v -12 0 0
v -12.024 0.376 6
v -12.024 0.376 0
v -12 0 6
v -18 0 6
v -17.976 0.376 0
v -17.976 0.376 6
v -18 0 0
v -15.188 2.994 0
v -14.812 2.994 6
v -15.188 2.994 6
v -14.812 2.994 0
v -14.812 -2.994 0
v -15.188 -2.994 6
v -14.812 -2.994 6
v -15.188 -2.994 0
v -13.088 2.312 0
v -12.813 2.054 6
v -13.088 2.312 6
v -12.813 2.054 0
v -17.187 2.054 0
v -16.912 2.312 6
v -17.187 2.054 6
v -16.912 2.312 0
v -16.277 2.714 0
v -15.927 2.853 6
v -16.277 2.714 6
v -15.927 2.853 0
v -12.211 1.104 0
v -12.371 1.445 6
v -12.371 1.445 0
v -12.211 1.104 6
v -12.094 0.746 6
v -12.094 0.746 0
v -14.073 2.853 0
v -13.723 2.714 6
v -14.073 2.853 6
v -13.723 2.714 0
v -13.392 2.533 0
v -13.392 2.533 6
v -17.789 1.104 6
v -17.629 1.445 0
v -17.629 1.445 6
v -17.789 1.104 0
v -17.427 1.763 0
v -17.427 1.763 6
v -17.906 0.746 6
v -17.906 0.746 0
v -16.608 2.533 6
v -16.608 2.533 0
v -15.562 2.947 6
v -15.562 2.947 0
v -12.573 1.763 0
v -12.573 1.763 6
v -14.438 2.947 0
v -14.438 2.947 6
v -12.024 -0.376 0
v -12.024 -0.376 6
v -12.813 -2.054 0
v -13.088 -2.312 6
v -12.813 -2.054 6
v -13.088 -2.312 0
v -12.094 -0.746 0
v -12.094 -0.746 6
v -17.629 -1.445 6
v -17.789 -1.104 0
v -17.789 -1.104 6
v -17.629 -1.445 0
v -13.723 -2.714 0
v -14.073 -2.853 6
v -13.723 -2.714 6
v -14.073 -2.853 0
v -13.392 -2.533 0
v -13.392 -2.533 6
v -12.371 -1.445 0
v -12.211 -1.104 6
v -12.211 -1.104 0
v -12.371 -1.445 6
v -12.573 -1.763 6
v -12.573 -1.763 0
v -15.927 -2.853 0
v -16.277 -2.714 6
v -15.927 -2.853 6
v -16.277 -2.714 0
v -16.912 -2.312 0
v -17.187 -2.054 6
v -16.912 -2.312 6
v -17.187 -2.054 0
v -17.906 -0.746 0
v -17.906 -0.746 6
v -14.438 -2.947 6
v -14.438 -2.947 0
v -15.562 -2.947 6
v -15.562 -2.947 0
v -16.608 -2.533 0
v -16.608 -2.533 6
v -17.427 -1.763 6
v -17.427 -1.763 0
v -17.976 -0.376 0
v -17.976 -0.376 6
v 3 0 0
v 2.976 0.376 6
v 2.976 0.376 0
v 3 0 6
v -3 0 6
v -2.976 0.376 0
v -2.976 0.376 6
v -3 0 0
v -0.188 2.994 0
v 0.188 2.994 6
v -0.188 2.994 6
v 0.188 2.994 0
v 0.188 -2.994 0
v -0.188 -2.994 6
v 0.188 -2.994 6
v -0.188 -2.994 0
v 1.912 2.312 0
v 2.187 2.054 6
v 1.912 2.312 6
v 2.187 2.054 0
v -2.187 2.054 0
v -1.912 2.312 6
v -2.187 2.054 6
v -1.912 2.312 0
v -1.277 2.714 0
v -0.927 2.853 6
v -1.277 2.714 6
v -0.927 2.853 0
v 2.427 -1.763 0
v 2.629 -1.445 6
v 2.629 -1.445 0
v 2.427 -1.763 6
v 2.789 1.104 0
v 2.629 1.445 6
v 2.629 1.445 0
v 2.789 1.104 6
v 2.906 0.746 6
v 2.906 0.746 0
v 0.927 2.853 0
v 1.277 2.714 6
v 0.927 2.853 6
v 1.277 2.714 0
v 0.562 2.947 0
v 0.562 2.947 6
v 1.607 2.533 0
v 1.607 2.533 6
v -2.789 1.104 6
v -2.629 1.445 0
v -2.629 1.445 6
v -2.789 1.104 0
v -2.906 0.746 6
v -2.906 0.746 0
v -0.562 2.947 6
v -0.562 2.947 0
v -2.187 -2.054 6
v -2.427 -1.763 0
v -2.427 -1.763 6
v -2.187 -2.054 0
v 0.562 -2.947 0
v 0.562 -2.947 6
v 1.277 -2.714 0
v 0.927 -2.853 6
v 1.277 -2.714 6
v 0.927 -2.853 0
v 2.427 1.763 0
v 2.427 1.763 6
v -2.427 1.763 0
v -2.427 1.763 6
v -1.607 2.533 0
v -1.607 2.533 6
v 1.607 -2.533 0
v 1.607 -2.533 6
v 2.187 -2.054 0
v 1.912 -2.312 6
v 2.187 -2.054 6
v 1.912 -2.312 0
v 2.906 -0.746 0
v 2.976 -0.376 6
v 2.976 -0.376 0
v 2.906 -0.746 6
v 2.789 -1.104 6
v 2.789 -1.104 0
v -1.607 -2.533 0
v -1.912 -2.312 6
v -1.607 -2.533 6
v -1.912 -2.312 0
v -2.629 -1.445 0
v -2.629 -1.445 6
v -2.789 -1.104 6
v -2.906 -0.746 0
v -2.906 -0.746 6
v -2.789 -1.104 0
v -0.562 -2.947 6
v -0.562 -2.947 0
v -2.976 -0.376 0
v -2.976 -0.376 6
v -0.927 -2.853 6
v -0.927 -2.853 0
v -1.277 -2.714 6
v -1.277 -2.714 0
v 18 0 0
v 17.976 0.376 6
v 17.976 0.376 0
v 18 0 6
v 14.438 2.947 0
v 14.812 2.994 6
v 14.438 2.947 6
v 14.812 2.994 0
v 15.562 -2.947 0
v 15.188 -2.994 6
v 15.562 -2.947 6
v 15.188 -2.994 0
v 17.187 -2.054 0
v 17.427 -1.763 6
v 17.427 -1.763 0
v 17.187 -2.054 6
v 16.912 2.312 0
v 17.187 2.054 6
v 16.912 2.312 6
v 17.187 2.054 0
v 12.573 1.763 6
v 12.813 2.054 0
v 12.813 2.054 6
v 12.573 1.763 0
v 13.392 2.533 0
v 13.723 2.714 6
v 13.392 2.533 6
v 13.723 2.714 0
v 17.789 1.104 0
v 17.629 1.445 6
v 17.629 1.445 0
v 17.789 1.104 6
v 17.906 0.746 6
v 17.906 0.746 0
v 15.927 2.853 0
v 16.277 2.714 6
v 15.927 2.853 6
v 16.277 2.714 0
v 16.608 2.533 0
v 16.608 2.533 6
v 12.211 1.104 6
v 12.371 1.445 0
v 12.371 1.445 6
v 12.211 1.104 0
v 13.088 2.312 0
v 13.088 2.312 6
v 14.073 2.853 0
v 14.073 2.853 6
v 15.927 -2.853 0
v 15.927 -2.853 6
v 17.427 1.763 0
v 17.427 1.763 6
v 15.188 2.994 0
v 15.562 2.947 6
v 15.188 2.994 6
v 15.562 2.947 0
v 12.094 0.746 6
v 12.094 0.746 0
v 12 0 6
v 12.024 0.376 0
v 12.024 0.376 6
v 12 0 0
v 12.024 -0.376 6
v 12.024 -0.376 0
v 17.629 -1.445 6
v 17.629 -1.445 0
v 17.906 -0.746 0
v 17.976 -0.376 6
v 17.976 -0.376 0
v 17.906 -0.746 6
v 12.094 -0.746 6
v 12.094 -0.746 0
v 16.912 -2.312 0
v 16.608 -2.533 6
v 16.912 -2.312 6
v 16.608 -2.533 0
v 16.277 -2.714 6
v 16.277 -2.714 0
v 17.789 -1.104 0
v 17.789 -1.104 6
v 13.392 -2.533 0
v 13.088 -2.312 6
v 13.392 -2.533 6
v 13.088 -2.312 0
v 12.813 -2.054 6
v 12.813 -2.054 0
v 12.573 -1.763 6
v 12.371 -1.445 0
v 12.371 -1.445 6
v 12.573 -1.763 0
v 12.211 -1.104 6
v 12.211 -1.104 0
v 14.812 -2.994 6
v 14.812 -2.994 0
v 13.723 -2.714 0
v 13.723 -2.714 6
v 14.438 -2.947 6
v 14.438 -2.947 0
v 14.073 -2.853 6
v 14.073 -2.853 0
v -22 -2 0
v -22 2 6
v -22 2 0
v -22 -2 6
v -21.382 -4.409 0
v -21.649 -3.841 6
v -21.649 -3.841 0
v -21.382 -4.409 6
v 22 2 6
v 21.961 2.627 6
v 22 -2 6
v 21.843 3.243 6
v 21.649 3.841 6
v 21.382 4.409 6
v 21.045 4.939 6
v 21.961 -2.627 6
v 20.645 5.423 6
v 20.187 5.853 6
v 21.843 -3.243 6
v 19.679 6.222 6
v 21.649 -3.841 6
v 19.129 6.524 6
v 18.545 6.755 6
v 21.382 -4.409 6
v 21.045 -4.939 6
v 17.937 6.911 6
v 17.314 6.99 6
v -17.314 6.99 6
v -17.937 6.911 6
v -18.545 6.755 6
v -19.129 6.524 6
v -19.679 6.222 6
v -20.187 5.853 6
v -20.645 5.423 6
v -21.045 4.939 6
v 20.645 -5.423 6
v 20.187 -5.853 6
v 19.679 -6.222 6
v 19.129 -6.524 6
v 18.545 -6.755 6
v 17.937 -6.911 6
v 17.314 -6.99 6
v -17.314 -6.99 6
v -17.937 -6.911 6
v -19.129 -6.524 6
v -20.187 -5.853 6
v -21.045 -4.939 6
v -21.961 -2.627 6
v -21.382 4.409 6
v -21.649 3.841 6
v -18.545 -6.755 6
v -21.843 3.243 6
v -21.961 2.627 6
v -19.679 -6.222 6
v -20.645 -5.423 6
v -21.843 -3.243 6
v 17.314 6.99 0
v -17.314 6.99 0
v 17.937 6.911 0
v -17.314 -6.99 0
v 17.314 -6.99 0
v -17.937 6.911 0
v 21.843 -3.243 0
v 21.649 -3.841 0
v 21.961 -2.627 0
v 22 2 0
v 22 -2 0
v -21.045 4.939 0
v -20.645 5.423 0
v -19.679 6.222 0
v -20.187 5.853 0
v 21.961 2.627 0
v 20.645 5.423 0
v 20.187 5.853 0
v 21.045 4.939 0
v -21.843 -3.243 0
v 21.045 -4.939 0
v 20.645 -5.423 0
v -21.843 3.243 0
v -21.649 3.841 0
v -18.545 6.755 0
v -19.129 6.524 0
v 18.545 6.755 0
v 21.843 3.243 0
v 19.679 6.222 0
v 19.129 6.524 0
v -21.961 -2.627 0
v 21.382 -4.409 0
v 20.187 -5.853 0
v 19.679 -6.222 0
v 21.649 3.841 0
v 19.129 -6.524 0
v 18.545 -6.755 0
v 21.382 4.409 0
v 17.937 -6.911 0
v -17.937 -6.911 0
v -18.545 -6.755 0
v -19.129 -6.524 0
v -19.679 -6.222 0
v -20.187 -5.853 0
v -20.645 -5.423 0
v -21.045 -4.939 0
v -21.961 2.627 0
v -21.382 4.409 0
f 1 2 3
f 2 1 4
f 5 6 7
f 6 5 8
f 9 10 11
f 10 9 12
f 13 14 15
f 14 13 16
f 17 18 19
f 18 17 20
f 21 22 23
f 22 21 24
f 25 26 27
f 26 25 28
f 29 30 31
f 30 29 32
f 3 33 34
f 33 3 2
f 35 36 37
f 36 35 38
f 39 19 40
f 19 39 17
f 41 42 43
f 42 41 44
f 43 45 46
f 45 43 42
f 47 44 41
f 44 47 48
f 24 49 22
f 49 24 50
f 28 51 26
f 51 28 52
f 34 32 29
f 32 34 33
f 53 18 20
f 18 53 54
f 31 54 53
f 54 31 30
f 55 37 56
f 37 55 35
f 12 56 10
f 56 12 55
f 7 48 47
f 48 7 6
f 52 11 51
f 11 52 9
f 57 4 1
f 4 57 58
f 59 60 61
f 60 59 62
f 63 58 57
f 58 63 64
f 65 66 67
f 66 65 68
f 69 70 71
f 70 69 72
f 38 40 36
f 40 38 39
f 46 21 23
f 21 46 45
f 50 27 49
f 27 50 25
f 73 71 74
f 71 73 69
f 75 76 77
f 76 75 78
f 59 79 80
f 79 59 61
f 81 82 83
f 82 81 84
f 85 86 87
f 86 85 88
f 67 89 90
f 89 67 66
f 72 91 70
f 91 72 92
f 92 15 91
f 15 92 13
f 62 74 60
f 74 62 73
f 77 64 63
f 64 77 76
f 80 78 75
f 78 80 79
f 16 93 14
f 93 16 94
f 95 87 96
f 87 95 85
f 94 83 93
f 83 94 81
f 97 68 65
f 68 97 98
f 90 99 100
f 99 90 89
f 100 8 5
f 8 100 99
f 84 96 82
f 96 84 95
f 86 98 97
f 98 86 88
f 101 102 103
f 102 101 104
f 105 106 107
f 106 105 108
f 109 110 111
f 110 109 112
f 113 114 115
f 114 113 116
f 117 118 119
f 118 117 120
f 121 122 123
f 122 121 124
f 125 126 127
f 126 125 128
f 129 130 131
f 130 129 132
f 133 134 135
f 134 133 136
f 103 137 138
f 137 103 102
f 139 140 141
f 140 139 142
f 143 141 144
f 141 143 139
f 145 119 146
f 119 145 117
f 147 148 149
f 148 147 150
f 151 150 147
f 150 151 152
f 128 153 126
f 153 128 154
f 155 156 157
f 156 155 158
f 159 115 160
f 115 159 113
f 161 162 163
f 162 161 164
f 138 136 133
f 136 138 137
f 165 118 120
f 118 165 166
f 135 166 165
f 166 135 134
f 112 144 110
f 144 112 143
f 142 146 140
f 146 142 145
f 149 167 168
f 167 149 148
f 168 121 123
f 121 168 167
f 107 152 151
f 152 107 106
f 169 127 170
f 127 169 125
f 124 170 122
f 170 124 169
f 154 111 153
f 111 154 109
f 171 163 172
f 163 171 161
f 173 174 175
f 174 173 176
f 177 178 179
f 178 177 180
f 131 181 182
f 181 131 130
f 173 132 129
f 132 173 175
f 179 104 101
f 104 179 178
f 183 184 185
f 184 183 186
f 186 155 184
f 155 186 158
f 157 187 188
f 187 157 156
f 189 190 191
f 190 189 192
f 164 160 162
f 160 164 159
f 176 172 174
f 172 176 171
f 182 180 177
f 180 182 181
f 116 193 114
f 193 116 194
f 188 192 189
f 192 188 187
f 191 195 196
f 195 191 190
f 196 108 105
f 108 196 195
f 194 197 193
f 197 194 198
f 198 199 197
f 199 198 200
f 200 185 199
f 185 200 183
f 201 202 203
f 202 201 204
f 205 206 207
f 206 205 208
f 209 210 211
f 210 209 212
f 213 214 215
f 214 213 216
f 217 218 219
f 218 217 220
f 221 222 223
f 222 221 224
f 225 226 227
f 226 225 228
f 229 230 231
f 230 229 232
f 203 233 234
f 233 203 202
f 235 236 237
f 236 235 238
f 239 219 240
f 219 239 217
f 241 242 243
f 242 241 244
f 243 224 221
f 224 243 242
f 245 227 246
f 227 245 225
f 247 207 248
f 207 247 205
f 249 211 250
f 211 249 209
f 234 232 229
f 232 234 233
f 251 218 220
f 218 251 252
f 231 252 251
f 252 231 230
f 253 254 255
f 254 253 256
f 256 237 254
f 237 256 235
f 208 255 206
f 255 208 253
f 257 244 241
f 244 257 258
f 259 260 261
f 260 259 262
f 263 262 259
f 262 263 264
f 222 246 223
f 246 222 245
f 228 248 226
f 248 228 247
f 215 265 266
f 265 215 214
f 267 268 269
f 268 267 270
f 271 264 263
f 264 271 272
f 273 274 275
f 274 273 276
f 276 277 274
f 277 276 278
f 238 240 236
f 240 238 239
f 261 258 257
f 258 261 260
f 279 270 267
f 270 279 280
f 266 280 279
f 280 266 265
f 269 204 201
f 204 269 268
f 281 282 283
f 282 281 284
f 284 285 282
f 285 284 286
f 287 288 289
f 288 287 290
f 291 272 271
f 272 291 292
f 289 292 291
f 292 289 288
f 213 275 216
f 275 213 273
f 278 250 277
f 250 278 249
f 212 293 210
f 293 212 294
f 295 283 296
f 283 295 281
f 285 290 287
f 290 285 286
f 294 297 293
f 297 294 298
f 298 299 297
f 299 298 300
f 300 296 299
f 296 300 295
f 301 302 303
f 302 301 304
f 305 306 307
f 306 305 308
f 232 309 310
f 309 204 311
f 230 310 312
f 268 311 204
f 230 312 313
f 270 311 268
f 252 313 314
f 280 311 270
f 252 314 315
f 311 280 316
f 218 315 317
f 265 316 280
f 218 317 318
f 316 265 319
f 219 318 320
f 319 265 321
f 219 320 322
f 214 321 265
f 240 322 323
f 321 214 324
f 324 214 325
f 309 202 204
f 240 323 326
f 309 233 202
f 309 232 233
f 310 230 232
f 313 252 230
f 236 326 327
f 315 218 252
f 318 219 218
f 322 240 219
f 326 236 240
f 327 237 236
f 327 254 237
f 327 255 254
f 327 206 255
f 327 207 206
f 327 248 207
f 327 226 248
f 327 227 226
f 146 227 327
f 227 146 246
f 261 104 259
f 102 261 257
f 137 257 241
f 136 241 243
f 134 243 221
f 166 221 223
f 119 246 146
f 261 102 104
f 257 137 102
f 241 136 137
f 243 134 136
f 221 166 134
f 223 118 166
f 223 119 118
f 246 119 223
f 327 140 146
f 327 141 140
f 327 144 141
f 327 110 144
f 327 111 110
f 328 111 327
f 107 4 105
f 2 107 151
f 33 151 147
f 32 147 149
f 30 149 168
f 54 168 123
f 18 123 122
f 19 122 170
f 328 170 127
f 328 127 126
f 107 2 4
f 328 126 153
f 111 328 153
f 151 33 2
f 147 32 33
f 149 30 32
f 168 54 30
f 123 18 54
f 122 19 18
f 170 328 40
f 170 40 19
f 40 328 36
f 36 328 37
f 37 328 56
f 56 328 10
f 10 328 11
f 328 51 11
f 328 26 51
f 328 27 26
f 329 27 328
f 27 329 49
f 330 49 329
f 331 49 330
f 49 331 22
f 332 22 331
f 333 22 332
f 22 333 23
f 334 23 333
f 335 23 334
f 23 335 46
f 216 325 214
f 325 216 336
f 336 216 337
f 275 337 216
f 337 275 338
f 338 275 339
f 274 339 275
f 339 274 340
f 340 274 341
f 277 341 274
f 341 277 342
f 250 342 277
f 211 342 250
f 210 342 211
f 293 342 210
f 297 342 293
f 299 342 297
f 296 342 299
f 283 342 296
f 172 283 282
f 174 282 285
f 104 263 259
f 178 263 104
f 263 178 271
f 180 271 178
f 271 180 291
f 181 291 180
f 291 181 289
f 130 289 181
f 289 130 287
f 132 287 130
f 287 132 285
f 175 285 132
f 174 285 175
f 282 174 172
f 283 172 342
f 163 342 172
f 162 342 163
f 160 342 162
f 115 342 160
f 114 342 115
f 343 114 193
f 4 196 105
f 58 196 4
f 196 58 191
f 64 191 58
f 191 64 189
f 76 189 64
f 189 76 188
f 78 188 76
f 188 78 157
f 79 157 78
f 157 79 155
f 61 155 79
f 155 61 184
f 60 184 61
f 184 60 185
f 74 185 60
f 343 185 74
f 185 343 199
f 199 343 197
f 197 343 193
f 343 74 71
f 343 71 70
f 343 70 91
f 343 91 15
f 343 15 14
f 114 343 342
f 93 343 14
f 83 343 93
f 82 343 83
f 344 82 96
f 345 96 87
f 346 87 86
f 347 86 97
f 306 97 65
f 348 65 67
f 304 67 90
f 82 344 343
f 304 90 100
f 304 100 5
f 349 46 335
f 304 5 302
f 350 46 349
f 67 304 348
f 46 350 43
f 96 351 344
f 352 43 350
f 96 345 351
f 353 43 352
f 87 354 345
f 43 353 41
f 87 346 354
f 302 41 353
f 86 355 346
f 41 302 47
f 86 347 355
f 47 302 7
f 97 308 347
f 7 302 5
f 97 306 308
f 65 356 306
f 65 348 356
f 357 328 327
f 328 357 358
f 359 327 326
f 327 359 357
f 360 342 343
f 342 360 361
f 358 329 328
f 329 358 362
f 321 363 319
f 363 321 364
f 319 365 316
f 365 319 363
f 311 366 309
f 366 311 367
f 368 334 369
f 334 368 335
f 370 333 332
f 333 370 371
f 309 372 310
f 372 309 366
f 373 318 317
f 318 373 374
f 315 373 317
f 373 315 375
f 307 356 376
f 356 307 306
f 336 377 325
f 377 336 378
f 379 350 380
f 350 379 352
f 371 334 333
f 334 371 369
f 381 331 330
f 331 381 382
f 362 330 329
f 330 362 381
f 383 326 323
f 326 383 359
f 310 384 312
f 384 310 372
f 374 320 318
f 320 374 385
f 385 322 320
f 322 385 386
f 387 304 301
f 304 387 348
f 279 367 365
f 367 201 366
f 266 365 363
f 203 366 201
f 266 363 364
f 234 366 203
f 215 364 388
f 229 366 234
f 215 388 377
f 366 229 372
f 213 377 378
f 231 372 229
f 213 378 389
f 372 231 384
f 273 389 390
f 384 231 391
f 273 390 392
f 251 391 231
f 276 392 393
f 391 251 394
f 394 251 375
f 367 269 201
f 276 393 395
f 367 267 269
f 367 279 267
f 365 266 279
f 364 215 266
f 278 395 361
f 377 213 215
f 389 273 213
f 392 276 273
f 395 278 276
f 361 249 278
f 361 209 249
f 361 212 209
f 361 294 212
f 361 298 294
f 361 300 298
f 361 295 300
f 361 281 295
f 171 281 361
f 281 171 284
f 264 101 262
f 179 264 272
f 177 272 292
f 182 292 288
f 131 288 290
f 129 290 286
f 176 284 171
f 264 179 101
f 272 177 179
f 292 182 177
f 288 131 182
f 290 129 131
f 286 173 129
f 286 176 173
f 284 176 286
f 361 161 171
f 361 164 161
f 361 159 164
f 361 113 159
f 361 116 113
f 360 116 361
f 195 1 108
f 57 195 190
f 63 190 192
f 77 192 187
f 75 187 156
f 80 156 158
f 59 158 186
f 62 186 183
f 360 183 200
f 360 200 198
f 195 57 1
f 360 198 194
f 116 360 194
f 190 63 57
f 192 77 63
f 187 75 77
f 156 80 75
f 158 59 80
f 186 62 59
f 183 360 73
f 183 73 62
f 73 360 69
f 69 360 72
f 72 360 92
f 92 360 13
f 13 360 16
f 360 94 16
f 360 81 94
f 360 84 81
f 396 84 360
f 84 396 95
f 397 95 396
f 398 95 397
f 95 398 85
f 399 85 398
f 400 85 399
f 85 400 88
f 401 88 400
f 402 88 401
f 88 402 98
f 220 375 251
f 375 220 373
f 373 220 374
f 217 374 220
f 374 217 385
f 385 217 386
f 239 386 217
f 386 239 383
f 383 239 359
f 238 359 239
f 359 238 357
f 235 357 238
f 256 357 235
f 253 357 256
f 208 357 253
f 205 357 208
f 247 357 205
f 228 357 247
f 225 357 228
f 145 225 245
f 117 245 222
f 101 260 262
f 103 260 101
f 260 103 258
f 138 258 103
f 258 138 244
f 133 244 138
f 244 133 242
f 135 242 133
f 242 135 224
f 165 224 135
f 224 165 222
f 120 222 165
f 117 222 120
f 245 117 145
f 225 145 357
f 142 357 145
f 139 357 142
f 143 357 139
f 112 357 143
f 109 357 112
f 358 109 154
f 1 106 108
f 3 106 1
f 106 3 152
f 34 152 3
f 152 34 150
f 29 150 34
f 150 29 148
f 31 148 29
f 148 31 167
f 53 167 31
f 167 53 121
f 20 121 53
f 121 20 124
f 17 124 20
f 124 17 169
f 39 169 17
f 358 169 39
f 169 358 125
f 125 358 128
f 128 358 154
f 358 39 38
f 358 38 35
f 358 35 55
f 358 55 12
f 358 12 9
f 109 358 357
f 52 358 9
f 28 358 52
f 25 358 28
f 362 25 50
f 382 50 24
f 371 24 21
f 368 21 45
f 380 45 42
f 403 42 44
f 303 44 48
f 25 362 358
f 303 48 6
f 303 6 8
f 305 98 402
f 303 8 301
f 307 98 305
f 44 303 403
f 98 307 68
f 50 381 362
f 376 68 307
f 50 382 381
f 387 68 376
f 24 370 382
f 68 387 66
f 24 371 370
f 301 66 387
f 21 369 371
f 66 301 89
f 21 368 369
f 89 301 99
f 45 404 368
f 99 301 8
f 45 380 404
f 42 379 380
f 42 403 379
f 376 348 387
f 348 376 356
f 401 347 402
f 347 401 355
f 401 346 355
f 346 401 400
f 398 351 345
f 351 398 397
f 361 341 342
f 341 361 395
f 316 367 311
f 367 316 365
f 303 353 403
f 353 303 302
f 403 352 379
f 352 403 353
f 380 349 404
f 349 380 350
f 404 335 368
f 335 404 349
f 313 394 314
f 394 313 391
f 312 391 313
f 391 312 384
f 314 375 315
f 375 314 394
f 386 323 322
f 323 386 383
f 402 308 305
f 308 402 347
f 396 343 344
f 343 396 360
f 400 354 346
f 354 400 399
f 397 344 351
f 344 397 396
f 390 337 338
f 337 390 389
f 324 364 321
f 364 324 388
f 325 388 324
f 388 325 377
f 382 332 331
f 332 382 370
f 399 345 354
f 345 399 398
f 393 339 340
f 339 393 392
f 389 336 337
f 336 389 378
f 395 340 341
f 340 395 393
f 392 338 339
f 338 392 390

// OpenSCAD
$fn = 50;


difference() {
	union() {
		hull() {
			translate(v = [-17.0000000000, 2.0000000000, 0]) {
				cylinder(h = 6, r = 5);
			}
			translate(v = [17.0000000000, 2.0000000000, 0]) {
				cylinder(h = 6, r = 5);
			}
			translate(v = [-17.0000000000, -2.0000000000, 0]) {
				cylinder(h = 6, r = 5);
			}
			translate(v = [17.0000000000, -2.0000000000, 0]) {
				cylinder(h = 6, r = 5);
			}
		}
	}
	union() {
		translate(v = [-15.0000000000, 0.0000000000, 0]) {
			translate(v = [0, 0, -100]) {
				cylinder(h = 200, r = 3.0000000000);
			}
		}
		translate(v = [0, 0, -100]) {
			cylinder(h = 200, r = 3.0000000000);
		}
		translate(v = [15.0000000000, 0.0000000000, 0]) {
			translate(v = [0, 0, -100]) {
				cylinder(h = 200, r = 3.0000000000);
			}
		}
	}
}
